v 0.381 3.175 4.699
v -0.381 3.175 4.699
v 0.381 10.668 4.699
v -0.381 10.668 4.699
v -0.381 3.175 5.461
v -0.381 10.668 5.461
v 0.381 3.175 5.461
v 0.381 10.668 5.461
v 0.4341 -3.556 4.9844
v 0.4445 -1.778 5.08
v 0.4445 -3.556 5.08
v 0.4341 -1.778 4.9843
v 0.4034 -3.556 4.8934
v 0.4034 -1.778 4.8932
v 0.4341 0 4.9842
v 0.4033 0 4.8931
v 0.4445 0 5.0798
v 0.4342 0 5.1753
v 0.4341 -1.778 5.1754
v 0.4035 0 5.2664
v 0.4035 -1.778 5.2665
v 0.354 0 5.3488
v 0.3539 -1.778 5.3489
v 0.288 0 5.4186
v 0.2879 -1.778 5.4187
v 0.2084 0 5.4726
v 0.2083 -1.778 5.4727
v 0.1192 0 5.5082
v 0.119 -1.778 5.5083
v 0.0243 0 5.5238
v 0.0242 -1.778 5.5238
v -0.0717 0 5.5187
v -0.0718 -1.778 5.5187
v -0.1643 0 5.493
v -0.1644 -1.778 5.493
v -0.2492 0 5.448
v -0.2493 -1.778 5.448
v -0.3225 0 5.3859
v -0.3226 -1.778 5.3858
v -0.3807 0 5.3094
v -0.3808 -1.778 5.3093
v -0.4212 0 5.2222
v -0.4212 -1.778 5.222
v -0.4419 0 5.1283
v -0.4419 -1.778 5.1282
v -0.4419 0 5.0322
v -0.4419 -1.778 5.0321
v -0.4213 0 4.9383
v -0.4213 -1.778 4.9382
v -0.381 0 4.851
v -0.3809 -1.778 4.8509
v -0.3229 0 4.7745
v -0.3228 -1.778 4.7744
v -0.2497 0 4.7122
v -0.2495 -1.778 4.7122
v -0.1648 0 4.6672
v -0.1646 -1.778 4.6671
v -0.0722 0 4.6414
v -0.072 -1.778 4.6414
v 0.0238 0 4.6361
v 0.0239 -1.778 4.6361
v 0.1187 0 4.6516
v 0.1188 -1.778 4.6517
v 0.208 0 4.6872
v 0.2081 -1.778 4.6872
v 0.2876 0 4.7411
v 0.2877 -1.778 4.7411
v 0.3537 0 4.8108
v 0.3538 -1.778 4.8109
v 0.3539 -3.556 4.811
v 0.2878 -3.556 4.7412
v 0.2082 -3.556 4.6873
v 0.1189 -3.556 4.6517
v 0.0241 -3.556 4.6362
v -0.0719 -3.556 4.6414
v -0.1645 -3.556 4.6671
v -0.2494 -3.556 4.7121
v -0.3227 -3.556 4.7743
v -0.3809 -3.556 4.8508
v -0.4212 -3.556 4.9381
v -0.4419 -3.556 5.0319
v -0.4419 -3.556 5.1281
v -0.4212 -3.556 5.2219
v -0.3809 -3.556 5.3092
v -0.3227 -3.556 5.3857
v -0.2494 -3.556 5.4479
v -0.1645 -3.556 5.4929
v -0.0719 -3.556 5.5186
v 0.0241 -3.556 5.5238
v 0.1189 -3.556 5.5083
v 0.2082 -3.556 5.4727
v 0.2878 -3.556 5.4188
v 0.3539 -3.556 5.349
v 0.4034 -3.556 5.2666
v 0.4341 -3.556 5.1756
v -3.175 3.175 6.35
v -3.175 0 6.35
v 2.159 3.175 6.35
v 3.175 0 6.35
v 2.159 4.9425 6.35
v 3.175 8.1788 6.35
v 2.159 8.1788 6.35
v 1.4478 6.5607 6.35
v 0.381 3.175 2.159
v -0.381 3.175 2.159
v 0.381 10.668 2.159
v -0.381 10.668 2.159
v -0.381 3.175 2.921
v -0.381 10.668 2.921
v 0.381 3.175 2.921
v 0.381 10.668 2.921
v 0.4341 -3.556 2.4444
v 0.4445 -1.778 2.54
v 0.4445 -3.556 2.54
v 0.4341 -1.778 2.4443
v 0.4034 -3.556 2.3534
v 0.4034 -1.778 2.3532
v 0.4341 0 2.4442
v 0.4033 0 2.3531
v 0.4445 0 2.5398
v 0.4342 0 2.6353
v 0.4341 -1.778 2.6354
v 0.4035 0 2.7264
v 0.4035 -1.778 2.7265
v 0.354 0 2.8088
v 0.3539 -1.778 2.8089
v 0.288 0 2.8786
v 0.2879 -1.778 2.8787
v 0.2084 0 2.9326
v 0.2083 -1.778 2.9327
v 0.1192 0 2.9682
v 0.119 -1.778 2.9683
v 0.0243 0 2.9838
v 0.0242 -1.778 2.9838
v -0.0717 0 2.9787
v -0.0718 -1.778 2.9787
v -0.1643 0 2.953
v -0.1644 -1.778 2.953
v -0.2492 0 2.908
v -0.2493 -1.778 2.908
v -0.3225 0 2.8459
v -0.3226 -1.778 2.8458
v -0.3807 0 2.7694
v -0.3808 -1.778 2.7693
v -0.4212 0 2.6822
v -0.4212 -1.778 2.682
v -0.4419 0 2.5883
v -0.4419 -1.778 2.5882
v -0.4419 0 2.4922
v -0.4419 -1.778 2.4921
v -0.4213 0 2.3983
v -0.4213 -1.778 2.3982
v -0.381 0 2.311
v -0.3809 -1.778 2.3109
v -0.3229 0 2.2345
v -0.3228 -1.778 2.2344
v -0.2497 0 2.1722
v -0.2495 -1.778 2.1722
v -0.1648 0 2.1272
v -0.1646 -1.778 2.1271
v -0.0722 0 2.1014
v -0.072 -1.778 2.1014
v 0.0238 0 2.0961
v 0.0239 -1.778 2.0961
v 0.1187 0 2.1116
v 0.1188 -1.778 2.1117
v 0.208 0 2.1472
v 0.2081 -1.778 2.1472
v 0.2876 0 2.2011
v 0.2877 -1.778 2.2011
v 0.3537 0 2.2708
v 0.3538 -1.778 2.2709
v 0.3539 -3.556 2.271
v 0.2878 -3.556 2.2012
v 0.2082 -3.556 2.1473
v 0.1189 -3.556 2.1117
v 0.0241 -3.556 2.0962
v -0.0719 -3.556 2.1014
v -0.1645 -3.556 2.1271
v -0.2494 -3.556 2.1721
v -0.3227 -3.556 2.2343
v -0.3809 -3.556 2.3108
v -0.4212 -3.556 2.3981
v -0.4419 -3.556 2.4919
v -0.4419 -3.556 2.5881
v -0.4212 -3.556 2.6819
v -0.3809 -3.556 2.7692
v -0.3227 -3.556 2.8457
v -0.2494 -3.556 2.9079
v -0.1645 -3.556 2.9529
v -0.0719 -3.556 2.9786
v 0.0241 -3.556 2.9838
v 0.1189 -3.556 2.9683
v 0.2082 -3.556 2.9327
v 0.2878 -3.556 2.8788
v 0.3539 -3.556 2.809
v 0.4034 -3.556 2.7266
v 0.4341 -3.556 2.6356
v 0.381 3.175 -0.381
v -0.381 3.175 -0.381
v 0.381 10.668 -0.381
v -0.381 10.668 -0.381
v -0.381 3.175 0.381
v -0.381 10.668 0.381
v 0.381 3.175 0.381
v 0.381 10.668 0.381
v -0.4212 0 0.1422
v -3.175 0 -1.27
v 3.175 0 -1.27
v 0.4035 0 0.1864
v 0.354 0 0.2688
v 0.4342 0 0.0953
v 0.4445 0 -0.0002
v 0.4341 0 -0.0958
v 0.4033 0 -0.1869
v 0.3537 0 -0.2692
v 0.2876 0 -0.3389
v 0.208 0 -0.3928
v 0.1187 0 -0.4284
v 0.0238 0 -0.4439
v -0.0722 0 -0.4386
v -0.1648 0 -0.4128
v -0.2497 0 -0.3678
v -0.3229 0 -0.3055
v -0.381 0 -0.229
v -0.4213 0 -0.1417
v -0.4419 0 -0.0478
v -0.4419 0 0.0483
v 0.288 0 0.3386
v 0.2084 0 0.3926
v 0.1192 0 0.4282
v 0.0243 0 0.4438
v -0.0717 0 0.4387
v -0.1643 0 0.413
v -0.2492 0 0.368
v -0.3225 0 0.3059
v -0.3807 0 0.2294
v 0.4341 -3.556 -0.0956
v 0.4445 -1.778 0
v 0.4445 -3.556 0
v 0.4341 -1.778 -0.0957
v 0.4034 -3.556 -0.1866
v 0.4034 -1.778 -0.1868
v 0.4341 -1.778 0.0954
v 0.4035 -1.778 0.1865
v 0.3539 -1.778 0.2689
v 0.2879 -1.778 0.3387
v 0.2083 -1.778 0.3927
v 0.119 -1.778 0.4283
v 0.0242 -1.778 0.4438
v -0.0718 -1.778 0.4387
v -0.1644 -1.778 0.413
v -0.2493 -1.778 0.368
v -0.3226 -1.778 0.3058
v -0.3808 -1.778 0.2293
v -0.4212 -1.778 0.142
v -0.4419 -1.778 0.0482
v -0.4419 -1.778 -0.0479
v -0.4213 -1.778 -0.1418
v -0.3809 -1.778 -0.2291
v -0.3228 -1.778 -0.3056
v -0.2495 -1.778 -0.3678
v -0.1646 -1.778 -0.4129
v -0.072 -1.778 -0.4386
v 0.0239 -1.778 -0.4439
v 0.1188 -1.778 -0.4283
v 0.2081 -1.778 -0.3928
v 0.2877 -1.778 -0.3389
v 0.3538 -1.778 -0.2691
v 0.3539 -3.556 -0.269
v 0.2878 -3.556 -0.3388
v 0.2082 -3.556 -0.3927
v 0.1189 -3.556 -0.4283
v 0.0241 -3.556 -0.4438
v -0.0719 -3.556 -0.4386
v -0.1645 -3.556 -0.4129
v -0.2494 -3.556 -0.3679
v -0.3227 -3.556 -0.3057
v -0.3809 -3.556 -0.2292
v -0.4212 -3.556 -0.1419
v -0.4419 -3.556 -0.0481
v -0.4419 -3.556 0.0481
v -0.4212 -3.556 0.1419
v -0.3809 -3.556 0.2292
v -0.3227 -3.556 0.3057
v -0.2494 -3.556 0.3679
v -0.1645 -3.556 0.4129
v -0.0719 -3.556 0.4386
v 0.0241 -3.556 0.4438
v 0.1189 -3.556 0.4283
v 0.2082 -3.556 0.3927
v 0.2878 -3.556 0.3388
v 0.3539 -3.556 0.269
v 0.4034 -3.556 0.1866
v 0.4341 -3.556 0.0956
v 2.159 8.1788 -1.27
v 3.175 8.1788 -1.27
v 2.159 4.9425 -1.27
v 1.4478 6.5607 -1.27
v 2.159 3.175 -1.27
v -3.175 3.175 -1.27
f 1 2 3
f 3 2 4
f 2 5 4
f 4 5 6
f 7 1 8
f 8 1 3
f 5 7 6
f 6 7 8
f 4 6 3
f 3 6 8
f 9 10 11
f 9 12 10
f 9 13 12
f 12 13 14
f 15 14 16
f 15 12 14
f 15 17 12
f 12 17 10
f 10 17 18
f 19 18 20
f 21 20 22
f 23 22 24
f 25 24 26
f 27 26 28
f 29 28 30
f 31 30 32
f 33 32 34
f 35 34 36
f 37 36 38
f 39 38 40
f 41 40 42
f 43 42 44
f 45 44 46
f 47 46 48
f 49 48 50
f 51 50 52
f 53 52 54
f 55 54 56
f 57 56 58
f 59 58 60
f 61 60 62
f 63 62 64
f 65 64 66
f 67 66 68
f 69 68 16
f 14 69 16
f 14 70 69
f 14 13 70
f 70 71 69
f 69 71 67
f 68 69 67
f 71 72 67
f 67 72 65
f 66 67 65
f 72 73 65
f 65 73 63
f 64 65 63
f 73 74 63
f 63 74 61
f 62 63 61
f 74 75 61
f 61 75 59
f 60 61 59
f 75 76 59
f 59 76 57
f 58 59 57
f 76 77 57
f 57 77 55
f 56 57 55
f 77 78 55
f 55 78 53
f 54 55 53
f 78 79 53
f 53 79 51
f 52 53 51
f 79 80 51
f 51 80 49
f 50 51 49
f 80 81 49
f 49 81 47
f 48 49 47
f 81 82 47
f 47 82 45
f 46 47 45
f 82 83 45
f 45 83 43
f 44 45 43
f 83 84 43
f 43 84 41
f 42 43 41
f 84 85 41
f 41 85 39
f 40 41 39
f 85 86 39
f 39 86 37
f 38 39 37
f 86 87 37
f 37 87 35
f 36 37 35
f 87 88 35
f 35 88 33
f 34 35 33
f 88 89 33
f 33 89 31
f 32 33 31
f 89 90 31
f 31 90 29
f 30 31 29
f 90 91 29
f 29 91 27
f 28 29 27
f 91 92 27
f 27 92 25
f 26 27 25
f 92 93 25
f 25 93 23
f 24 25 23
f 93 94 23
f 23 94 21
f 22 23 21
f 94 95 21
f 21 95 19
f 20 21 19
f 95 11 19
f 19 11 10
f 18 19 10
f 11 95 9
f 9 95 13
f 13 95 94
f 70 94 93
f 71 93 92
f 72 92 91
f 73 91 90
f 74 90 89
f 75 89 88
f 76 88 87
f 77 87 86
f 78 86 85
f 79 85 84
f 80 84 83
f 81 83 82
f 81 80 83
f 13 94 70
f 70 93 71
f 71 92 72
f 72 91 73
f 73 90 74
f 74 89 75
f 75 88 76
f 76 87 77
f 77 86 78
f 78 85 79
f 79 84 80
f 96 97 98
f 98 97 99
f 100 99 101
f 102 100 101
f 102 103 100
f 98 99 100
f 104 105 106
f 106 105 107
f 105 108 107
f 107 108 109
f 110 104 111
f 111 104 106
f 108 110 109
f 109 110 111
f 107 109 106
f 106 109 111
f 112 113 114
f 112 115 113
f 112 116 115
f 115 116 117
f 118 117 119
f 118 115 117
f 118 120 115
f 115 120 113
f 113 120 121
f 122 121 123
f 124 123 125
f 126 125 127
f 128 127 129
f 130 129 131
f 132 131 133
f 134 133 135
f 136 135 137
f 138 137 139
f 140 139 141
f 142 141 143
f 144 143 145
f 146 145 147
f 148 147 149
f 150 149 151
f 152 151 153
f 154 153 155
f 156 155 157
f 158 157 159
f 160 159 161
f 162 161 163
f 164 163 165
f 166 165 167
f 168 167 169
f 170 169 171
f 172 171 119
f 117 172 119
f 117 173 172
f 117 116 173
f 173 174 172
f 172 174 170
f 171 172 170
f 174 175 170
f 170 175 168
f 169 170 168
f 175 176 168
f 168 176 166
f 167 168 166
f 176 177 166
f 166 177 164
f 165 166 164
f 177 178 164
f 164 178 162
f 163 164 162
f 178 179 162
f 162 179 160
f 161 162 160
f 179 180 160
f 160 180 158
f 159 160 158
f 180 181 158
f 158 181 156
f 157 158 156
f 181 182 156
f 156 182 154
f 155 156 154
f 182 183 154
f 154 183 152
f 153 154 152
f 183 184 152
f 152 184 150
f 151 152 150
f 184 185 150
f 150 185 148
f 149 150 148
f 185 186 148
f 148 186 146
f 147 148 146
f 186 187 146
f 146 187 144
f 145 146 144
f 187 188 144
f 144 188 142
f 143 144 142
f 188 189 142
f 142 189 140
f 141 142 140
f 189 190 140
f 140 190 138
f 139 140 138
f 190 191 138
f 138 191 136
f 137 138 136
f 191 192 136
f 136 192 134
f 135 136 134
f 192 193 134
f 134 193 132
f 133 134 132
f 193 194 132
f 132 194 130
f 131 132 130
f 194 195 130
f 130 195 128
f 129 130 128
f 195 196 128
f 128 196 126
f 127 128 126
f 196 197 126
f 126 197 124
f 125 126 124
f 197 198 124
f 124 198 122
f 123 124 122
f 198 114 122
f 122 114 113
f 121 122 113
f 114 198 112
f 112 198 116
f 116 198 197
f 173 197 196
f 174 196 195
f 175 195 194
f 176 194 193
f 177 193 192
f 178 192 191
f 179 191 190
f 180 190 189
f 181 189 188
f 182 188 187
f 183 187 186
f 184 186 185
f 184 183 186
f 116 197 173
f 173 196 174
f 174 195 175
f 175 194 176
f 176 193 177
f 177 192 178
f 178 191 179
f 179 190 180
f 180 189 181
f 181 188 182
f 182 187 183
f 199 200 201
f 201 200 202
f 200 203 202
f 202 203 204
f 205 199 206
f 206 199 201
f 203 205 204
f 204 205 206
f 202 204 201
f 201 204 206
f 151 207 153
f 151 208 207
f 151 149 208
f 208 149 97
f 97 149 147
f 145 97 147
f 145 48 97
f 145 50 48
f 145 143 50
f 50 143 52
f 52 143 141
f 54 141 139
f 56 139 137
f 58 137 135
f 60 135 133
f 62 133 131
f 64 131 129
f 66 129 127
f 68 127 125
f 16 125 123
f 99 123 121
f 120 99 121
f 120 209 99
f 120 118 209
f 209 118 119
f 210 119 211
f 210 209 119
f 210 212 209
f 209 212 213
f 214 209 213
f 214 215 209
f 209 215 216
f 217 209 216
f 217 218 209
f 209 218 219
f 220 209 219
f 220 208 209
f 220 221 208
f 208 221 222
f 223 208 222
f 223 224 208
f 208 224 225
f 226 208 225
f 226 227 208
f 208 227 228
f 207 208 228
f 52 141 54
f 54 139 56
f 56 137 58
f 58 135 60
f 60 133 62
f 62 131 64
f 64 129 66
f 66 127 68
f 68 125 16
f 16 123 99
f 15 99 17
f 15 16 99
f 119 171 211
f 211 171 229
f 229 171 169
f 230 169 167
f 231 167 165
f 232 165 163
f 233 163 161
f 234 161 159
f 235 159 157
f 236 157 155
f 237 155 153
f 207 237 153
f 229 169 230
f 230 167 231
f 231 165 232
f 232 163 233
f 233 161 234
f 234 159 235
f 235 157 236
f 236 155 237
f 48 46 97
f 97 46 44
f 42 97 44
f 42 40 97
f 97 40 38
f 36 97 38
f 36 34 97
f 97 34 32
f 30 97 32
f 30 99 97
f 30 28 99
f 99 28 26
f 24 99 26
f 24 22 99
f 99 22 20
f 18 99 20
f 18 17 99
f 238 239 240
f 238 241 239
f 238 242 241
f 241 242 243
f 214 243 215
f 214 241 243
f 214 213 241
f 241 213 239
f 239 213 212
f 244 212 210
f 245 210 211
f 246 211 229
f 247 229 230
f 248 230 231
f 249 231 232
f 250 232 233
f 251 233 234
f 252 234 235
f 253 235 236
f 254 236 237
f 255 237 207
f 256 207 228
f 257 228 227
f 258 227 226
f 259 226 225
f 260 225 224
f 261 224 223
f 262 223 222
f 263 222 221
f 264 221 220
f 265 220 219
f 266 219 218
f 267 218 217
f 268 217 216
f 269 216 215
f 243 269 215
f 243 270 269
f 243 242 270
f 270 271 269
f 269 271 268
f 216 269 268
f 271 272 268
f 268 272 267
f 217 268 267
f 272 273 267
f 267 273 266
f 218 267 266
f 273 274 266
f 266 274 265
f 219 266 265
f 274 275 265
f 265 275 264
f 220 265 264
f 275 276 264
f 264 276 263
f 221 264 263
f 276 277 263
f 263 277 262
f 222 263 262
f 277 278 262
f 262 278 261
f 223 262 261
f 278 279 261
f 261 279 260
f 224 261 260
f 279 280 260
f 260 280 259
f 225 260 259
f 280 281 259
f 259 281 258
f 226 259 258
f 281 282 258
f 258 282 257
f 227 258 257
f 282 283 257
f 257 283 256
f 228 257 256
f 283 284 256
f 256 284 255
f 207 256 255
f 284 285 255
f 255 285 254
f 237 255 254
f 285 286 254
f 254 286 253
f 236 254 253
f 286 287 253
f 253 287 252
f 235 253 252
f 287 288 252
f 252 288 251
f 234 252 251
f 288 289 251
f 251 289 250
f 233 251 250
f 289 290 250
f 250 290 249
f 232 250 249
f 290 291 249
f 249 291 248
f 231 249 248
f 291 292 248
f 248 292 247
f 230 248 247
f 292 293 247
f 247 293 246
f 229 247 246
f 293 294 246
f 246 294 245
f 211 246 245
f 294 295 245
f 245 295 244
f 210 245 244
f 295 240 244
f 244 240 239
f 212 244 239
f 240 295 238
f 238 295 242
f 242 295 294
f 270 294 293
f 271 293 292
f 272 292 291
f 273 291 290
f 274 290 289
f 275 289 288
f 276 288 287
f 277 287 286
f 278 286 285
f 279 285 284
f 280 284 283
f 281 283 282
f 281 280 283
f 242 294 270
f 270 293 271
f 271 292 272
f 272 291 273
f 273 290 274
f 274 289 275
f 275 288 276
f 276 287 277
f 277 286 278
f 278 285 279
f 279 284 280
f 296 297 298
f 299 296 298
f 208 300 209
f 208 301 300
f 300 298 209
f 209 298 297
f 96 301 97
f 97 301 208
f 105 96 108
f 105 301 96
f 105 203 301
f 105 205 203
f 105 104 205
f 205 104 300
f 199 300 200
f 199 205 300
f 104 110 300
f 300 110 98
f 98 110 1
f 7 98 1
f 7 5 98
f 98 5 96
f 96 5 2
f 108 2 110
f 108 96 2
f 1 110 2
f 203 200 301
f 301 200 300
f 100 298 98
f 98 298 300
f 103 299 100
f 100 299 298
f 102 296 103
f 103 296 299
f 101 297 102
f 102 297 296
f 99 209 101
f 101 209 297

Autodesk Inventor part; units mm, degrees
ref_plane "YZ Plane (RIGHT)" through (0, 0, 0) normal (1, 0, 0) x (0, 1, 0)
ref_plane "XZ Plane (TOP)" through (0, 0, 0) normal (0, 1, 0) x (-1, 0, 0)
ref_plane "XY Plane (FRONT)" through (0, 0, 0) normal (0, 0, 1) x (1, 0, 0)
sketch "Sketch2" plane through (0, 0, 0) normal (0, 0, 1) x (1, 0, 0)
  line L0 (-4.445, 0) -> (4.445, 0) construction
  line L1 (0, 9.8146) -> (0, -1.6358) construction
  line L2 (-3.175, 0) -> (3.175, 0)
  line L3 (2.159, 3.175) -> (-3.175, 3.175)
  line L4 (-3.175, 3.175) -> (-3.175, 0)
  line L5 (3.175, 0) -> (3.175, 8.1788)
  line L6 (3.175, 8.1788) -> (2.159, 8.1788)
  line L7 (2.159, 8.1788) -> (1.4478, 6.5607)
  line L8 (1.4478, 6.5607) -> (2.159, 4.9425)
  line L9 (2.159, 4.9425) -> (2.159, 3.175)
  point P0 (0, 0)
  dimension "d0" = 6.35
  dimension "d1" = 3.175
  dimension "d2" = 8.1788
  dimension "d3" = 1.4478
  dimension "d4" = 1.016
extrude "Extrusion1" add sketch "Sketch2" along normal mid plane 2.54
sketch "Sketch3" plane through (-3.175, 0, 1.27) normal (0, -1, 0) x (1, 0, 0)
  line L0 (-1.27, -1.27) -> (7.62, -1.27) construction
  line L1 (3.175, 0.508) -> (3.175, -3.048) construction
  line L2 (2.794, -0.889) -> (3.556, -0.889)
  line L3 (3.556, -0.889) -> (3.556, -1.651)
  line L4 (3.556, -1.651) -> (2.794, -1.651)
  line L5 (2.794, -1.651) -> (2.794, -0.889)
  circle A0 centre (3.175, -1.27) radius 0.4445
  dimension "d7" = 0.762
  dimension "d15" = 0.889
extrude "Extrusion2" add sketch "Sketch3" along normal blind 3.556 contours A0 L2 | L2 A0 L3 L4 L5 | L5 A0 | A0 L3 | L4 A0
extrude "Extrusion3" add sketch "Sketch3" against normal blind 10.668 contours L2 A0 L5 | L2 A0 L3 L4 L5 | L2 L3 A0 | A0 L4 L5 | L3 L4 A0
pattern_linear "Rectangular Pattern1" count 3 spacing 2.54 along (0, 0, 1) of "Extrusion1", "Extrusion2", "Extrusion3"
properties part number "Molex KK 3 Pin"
